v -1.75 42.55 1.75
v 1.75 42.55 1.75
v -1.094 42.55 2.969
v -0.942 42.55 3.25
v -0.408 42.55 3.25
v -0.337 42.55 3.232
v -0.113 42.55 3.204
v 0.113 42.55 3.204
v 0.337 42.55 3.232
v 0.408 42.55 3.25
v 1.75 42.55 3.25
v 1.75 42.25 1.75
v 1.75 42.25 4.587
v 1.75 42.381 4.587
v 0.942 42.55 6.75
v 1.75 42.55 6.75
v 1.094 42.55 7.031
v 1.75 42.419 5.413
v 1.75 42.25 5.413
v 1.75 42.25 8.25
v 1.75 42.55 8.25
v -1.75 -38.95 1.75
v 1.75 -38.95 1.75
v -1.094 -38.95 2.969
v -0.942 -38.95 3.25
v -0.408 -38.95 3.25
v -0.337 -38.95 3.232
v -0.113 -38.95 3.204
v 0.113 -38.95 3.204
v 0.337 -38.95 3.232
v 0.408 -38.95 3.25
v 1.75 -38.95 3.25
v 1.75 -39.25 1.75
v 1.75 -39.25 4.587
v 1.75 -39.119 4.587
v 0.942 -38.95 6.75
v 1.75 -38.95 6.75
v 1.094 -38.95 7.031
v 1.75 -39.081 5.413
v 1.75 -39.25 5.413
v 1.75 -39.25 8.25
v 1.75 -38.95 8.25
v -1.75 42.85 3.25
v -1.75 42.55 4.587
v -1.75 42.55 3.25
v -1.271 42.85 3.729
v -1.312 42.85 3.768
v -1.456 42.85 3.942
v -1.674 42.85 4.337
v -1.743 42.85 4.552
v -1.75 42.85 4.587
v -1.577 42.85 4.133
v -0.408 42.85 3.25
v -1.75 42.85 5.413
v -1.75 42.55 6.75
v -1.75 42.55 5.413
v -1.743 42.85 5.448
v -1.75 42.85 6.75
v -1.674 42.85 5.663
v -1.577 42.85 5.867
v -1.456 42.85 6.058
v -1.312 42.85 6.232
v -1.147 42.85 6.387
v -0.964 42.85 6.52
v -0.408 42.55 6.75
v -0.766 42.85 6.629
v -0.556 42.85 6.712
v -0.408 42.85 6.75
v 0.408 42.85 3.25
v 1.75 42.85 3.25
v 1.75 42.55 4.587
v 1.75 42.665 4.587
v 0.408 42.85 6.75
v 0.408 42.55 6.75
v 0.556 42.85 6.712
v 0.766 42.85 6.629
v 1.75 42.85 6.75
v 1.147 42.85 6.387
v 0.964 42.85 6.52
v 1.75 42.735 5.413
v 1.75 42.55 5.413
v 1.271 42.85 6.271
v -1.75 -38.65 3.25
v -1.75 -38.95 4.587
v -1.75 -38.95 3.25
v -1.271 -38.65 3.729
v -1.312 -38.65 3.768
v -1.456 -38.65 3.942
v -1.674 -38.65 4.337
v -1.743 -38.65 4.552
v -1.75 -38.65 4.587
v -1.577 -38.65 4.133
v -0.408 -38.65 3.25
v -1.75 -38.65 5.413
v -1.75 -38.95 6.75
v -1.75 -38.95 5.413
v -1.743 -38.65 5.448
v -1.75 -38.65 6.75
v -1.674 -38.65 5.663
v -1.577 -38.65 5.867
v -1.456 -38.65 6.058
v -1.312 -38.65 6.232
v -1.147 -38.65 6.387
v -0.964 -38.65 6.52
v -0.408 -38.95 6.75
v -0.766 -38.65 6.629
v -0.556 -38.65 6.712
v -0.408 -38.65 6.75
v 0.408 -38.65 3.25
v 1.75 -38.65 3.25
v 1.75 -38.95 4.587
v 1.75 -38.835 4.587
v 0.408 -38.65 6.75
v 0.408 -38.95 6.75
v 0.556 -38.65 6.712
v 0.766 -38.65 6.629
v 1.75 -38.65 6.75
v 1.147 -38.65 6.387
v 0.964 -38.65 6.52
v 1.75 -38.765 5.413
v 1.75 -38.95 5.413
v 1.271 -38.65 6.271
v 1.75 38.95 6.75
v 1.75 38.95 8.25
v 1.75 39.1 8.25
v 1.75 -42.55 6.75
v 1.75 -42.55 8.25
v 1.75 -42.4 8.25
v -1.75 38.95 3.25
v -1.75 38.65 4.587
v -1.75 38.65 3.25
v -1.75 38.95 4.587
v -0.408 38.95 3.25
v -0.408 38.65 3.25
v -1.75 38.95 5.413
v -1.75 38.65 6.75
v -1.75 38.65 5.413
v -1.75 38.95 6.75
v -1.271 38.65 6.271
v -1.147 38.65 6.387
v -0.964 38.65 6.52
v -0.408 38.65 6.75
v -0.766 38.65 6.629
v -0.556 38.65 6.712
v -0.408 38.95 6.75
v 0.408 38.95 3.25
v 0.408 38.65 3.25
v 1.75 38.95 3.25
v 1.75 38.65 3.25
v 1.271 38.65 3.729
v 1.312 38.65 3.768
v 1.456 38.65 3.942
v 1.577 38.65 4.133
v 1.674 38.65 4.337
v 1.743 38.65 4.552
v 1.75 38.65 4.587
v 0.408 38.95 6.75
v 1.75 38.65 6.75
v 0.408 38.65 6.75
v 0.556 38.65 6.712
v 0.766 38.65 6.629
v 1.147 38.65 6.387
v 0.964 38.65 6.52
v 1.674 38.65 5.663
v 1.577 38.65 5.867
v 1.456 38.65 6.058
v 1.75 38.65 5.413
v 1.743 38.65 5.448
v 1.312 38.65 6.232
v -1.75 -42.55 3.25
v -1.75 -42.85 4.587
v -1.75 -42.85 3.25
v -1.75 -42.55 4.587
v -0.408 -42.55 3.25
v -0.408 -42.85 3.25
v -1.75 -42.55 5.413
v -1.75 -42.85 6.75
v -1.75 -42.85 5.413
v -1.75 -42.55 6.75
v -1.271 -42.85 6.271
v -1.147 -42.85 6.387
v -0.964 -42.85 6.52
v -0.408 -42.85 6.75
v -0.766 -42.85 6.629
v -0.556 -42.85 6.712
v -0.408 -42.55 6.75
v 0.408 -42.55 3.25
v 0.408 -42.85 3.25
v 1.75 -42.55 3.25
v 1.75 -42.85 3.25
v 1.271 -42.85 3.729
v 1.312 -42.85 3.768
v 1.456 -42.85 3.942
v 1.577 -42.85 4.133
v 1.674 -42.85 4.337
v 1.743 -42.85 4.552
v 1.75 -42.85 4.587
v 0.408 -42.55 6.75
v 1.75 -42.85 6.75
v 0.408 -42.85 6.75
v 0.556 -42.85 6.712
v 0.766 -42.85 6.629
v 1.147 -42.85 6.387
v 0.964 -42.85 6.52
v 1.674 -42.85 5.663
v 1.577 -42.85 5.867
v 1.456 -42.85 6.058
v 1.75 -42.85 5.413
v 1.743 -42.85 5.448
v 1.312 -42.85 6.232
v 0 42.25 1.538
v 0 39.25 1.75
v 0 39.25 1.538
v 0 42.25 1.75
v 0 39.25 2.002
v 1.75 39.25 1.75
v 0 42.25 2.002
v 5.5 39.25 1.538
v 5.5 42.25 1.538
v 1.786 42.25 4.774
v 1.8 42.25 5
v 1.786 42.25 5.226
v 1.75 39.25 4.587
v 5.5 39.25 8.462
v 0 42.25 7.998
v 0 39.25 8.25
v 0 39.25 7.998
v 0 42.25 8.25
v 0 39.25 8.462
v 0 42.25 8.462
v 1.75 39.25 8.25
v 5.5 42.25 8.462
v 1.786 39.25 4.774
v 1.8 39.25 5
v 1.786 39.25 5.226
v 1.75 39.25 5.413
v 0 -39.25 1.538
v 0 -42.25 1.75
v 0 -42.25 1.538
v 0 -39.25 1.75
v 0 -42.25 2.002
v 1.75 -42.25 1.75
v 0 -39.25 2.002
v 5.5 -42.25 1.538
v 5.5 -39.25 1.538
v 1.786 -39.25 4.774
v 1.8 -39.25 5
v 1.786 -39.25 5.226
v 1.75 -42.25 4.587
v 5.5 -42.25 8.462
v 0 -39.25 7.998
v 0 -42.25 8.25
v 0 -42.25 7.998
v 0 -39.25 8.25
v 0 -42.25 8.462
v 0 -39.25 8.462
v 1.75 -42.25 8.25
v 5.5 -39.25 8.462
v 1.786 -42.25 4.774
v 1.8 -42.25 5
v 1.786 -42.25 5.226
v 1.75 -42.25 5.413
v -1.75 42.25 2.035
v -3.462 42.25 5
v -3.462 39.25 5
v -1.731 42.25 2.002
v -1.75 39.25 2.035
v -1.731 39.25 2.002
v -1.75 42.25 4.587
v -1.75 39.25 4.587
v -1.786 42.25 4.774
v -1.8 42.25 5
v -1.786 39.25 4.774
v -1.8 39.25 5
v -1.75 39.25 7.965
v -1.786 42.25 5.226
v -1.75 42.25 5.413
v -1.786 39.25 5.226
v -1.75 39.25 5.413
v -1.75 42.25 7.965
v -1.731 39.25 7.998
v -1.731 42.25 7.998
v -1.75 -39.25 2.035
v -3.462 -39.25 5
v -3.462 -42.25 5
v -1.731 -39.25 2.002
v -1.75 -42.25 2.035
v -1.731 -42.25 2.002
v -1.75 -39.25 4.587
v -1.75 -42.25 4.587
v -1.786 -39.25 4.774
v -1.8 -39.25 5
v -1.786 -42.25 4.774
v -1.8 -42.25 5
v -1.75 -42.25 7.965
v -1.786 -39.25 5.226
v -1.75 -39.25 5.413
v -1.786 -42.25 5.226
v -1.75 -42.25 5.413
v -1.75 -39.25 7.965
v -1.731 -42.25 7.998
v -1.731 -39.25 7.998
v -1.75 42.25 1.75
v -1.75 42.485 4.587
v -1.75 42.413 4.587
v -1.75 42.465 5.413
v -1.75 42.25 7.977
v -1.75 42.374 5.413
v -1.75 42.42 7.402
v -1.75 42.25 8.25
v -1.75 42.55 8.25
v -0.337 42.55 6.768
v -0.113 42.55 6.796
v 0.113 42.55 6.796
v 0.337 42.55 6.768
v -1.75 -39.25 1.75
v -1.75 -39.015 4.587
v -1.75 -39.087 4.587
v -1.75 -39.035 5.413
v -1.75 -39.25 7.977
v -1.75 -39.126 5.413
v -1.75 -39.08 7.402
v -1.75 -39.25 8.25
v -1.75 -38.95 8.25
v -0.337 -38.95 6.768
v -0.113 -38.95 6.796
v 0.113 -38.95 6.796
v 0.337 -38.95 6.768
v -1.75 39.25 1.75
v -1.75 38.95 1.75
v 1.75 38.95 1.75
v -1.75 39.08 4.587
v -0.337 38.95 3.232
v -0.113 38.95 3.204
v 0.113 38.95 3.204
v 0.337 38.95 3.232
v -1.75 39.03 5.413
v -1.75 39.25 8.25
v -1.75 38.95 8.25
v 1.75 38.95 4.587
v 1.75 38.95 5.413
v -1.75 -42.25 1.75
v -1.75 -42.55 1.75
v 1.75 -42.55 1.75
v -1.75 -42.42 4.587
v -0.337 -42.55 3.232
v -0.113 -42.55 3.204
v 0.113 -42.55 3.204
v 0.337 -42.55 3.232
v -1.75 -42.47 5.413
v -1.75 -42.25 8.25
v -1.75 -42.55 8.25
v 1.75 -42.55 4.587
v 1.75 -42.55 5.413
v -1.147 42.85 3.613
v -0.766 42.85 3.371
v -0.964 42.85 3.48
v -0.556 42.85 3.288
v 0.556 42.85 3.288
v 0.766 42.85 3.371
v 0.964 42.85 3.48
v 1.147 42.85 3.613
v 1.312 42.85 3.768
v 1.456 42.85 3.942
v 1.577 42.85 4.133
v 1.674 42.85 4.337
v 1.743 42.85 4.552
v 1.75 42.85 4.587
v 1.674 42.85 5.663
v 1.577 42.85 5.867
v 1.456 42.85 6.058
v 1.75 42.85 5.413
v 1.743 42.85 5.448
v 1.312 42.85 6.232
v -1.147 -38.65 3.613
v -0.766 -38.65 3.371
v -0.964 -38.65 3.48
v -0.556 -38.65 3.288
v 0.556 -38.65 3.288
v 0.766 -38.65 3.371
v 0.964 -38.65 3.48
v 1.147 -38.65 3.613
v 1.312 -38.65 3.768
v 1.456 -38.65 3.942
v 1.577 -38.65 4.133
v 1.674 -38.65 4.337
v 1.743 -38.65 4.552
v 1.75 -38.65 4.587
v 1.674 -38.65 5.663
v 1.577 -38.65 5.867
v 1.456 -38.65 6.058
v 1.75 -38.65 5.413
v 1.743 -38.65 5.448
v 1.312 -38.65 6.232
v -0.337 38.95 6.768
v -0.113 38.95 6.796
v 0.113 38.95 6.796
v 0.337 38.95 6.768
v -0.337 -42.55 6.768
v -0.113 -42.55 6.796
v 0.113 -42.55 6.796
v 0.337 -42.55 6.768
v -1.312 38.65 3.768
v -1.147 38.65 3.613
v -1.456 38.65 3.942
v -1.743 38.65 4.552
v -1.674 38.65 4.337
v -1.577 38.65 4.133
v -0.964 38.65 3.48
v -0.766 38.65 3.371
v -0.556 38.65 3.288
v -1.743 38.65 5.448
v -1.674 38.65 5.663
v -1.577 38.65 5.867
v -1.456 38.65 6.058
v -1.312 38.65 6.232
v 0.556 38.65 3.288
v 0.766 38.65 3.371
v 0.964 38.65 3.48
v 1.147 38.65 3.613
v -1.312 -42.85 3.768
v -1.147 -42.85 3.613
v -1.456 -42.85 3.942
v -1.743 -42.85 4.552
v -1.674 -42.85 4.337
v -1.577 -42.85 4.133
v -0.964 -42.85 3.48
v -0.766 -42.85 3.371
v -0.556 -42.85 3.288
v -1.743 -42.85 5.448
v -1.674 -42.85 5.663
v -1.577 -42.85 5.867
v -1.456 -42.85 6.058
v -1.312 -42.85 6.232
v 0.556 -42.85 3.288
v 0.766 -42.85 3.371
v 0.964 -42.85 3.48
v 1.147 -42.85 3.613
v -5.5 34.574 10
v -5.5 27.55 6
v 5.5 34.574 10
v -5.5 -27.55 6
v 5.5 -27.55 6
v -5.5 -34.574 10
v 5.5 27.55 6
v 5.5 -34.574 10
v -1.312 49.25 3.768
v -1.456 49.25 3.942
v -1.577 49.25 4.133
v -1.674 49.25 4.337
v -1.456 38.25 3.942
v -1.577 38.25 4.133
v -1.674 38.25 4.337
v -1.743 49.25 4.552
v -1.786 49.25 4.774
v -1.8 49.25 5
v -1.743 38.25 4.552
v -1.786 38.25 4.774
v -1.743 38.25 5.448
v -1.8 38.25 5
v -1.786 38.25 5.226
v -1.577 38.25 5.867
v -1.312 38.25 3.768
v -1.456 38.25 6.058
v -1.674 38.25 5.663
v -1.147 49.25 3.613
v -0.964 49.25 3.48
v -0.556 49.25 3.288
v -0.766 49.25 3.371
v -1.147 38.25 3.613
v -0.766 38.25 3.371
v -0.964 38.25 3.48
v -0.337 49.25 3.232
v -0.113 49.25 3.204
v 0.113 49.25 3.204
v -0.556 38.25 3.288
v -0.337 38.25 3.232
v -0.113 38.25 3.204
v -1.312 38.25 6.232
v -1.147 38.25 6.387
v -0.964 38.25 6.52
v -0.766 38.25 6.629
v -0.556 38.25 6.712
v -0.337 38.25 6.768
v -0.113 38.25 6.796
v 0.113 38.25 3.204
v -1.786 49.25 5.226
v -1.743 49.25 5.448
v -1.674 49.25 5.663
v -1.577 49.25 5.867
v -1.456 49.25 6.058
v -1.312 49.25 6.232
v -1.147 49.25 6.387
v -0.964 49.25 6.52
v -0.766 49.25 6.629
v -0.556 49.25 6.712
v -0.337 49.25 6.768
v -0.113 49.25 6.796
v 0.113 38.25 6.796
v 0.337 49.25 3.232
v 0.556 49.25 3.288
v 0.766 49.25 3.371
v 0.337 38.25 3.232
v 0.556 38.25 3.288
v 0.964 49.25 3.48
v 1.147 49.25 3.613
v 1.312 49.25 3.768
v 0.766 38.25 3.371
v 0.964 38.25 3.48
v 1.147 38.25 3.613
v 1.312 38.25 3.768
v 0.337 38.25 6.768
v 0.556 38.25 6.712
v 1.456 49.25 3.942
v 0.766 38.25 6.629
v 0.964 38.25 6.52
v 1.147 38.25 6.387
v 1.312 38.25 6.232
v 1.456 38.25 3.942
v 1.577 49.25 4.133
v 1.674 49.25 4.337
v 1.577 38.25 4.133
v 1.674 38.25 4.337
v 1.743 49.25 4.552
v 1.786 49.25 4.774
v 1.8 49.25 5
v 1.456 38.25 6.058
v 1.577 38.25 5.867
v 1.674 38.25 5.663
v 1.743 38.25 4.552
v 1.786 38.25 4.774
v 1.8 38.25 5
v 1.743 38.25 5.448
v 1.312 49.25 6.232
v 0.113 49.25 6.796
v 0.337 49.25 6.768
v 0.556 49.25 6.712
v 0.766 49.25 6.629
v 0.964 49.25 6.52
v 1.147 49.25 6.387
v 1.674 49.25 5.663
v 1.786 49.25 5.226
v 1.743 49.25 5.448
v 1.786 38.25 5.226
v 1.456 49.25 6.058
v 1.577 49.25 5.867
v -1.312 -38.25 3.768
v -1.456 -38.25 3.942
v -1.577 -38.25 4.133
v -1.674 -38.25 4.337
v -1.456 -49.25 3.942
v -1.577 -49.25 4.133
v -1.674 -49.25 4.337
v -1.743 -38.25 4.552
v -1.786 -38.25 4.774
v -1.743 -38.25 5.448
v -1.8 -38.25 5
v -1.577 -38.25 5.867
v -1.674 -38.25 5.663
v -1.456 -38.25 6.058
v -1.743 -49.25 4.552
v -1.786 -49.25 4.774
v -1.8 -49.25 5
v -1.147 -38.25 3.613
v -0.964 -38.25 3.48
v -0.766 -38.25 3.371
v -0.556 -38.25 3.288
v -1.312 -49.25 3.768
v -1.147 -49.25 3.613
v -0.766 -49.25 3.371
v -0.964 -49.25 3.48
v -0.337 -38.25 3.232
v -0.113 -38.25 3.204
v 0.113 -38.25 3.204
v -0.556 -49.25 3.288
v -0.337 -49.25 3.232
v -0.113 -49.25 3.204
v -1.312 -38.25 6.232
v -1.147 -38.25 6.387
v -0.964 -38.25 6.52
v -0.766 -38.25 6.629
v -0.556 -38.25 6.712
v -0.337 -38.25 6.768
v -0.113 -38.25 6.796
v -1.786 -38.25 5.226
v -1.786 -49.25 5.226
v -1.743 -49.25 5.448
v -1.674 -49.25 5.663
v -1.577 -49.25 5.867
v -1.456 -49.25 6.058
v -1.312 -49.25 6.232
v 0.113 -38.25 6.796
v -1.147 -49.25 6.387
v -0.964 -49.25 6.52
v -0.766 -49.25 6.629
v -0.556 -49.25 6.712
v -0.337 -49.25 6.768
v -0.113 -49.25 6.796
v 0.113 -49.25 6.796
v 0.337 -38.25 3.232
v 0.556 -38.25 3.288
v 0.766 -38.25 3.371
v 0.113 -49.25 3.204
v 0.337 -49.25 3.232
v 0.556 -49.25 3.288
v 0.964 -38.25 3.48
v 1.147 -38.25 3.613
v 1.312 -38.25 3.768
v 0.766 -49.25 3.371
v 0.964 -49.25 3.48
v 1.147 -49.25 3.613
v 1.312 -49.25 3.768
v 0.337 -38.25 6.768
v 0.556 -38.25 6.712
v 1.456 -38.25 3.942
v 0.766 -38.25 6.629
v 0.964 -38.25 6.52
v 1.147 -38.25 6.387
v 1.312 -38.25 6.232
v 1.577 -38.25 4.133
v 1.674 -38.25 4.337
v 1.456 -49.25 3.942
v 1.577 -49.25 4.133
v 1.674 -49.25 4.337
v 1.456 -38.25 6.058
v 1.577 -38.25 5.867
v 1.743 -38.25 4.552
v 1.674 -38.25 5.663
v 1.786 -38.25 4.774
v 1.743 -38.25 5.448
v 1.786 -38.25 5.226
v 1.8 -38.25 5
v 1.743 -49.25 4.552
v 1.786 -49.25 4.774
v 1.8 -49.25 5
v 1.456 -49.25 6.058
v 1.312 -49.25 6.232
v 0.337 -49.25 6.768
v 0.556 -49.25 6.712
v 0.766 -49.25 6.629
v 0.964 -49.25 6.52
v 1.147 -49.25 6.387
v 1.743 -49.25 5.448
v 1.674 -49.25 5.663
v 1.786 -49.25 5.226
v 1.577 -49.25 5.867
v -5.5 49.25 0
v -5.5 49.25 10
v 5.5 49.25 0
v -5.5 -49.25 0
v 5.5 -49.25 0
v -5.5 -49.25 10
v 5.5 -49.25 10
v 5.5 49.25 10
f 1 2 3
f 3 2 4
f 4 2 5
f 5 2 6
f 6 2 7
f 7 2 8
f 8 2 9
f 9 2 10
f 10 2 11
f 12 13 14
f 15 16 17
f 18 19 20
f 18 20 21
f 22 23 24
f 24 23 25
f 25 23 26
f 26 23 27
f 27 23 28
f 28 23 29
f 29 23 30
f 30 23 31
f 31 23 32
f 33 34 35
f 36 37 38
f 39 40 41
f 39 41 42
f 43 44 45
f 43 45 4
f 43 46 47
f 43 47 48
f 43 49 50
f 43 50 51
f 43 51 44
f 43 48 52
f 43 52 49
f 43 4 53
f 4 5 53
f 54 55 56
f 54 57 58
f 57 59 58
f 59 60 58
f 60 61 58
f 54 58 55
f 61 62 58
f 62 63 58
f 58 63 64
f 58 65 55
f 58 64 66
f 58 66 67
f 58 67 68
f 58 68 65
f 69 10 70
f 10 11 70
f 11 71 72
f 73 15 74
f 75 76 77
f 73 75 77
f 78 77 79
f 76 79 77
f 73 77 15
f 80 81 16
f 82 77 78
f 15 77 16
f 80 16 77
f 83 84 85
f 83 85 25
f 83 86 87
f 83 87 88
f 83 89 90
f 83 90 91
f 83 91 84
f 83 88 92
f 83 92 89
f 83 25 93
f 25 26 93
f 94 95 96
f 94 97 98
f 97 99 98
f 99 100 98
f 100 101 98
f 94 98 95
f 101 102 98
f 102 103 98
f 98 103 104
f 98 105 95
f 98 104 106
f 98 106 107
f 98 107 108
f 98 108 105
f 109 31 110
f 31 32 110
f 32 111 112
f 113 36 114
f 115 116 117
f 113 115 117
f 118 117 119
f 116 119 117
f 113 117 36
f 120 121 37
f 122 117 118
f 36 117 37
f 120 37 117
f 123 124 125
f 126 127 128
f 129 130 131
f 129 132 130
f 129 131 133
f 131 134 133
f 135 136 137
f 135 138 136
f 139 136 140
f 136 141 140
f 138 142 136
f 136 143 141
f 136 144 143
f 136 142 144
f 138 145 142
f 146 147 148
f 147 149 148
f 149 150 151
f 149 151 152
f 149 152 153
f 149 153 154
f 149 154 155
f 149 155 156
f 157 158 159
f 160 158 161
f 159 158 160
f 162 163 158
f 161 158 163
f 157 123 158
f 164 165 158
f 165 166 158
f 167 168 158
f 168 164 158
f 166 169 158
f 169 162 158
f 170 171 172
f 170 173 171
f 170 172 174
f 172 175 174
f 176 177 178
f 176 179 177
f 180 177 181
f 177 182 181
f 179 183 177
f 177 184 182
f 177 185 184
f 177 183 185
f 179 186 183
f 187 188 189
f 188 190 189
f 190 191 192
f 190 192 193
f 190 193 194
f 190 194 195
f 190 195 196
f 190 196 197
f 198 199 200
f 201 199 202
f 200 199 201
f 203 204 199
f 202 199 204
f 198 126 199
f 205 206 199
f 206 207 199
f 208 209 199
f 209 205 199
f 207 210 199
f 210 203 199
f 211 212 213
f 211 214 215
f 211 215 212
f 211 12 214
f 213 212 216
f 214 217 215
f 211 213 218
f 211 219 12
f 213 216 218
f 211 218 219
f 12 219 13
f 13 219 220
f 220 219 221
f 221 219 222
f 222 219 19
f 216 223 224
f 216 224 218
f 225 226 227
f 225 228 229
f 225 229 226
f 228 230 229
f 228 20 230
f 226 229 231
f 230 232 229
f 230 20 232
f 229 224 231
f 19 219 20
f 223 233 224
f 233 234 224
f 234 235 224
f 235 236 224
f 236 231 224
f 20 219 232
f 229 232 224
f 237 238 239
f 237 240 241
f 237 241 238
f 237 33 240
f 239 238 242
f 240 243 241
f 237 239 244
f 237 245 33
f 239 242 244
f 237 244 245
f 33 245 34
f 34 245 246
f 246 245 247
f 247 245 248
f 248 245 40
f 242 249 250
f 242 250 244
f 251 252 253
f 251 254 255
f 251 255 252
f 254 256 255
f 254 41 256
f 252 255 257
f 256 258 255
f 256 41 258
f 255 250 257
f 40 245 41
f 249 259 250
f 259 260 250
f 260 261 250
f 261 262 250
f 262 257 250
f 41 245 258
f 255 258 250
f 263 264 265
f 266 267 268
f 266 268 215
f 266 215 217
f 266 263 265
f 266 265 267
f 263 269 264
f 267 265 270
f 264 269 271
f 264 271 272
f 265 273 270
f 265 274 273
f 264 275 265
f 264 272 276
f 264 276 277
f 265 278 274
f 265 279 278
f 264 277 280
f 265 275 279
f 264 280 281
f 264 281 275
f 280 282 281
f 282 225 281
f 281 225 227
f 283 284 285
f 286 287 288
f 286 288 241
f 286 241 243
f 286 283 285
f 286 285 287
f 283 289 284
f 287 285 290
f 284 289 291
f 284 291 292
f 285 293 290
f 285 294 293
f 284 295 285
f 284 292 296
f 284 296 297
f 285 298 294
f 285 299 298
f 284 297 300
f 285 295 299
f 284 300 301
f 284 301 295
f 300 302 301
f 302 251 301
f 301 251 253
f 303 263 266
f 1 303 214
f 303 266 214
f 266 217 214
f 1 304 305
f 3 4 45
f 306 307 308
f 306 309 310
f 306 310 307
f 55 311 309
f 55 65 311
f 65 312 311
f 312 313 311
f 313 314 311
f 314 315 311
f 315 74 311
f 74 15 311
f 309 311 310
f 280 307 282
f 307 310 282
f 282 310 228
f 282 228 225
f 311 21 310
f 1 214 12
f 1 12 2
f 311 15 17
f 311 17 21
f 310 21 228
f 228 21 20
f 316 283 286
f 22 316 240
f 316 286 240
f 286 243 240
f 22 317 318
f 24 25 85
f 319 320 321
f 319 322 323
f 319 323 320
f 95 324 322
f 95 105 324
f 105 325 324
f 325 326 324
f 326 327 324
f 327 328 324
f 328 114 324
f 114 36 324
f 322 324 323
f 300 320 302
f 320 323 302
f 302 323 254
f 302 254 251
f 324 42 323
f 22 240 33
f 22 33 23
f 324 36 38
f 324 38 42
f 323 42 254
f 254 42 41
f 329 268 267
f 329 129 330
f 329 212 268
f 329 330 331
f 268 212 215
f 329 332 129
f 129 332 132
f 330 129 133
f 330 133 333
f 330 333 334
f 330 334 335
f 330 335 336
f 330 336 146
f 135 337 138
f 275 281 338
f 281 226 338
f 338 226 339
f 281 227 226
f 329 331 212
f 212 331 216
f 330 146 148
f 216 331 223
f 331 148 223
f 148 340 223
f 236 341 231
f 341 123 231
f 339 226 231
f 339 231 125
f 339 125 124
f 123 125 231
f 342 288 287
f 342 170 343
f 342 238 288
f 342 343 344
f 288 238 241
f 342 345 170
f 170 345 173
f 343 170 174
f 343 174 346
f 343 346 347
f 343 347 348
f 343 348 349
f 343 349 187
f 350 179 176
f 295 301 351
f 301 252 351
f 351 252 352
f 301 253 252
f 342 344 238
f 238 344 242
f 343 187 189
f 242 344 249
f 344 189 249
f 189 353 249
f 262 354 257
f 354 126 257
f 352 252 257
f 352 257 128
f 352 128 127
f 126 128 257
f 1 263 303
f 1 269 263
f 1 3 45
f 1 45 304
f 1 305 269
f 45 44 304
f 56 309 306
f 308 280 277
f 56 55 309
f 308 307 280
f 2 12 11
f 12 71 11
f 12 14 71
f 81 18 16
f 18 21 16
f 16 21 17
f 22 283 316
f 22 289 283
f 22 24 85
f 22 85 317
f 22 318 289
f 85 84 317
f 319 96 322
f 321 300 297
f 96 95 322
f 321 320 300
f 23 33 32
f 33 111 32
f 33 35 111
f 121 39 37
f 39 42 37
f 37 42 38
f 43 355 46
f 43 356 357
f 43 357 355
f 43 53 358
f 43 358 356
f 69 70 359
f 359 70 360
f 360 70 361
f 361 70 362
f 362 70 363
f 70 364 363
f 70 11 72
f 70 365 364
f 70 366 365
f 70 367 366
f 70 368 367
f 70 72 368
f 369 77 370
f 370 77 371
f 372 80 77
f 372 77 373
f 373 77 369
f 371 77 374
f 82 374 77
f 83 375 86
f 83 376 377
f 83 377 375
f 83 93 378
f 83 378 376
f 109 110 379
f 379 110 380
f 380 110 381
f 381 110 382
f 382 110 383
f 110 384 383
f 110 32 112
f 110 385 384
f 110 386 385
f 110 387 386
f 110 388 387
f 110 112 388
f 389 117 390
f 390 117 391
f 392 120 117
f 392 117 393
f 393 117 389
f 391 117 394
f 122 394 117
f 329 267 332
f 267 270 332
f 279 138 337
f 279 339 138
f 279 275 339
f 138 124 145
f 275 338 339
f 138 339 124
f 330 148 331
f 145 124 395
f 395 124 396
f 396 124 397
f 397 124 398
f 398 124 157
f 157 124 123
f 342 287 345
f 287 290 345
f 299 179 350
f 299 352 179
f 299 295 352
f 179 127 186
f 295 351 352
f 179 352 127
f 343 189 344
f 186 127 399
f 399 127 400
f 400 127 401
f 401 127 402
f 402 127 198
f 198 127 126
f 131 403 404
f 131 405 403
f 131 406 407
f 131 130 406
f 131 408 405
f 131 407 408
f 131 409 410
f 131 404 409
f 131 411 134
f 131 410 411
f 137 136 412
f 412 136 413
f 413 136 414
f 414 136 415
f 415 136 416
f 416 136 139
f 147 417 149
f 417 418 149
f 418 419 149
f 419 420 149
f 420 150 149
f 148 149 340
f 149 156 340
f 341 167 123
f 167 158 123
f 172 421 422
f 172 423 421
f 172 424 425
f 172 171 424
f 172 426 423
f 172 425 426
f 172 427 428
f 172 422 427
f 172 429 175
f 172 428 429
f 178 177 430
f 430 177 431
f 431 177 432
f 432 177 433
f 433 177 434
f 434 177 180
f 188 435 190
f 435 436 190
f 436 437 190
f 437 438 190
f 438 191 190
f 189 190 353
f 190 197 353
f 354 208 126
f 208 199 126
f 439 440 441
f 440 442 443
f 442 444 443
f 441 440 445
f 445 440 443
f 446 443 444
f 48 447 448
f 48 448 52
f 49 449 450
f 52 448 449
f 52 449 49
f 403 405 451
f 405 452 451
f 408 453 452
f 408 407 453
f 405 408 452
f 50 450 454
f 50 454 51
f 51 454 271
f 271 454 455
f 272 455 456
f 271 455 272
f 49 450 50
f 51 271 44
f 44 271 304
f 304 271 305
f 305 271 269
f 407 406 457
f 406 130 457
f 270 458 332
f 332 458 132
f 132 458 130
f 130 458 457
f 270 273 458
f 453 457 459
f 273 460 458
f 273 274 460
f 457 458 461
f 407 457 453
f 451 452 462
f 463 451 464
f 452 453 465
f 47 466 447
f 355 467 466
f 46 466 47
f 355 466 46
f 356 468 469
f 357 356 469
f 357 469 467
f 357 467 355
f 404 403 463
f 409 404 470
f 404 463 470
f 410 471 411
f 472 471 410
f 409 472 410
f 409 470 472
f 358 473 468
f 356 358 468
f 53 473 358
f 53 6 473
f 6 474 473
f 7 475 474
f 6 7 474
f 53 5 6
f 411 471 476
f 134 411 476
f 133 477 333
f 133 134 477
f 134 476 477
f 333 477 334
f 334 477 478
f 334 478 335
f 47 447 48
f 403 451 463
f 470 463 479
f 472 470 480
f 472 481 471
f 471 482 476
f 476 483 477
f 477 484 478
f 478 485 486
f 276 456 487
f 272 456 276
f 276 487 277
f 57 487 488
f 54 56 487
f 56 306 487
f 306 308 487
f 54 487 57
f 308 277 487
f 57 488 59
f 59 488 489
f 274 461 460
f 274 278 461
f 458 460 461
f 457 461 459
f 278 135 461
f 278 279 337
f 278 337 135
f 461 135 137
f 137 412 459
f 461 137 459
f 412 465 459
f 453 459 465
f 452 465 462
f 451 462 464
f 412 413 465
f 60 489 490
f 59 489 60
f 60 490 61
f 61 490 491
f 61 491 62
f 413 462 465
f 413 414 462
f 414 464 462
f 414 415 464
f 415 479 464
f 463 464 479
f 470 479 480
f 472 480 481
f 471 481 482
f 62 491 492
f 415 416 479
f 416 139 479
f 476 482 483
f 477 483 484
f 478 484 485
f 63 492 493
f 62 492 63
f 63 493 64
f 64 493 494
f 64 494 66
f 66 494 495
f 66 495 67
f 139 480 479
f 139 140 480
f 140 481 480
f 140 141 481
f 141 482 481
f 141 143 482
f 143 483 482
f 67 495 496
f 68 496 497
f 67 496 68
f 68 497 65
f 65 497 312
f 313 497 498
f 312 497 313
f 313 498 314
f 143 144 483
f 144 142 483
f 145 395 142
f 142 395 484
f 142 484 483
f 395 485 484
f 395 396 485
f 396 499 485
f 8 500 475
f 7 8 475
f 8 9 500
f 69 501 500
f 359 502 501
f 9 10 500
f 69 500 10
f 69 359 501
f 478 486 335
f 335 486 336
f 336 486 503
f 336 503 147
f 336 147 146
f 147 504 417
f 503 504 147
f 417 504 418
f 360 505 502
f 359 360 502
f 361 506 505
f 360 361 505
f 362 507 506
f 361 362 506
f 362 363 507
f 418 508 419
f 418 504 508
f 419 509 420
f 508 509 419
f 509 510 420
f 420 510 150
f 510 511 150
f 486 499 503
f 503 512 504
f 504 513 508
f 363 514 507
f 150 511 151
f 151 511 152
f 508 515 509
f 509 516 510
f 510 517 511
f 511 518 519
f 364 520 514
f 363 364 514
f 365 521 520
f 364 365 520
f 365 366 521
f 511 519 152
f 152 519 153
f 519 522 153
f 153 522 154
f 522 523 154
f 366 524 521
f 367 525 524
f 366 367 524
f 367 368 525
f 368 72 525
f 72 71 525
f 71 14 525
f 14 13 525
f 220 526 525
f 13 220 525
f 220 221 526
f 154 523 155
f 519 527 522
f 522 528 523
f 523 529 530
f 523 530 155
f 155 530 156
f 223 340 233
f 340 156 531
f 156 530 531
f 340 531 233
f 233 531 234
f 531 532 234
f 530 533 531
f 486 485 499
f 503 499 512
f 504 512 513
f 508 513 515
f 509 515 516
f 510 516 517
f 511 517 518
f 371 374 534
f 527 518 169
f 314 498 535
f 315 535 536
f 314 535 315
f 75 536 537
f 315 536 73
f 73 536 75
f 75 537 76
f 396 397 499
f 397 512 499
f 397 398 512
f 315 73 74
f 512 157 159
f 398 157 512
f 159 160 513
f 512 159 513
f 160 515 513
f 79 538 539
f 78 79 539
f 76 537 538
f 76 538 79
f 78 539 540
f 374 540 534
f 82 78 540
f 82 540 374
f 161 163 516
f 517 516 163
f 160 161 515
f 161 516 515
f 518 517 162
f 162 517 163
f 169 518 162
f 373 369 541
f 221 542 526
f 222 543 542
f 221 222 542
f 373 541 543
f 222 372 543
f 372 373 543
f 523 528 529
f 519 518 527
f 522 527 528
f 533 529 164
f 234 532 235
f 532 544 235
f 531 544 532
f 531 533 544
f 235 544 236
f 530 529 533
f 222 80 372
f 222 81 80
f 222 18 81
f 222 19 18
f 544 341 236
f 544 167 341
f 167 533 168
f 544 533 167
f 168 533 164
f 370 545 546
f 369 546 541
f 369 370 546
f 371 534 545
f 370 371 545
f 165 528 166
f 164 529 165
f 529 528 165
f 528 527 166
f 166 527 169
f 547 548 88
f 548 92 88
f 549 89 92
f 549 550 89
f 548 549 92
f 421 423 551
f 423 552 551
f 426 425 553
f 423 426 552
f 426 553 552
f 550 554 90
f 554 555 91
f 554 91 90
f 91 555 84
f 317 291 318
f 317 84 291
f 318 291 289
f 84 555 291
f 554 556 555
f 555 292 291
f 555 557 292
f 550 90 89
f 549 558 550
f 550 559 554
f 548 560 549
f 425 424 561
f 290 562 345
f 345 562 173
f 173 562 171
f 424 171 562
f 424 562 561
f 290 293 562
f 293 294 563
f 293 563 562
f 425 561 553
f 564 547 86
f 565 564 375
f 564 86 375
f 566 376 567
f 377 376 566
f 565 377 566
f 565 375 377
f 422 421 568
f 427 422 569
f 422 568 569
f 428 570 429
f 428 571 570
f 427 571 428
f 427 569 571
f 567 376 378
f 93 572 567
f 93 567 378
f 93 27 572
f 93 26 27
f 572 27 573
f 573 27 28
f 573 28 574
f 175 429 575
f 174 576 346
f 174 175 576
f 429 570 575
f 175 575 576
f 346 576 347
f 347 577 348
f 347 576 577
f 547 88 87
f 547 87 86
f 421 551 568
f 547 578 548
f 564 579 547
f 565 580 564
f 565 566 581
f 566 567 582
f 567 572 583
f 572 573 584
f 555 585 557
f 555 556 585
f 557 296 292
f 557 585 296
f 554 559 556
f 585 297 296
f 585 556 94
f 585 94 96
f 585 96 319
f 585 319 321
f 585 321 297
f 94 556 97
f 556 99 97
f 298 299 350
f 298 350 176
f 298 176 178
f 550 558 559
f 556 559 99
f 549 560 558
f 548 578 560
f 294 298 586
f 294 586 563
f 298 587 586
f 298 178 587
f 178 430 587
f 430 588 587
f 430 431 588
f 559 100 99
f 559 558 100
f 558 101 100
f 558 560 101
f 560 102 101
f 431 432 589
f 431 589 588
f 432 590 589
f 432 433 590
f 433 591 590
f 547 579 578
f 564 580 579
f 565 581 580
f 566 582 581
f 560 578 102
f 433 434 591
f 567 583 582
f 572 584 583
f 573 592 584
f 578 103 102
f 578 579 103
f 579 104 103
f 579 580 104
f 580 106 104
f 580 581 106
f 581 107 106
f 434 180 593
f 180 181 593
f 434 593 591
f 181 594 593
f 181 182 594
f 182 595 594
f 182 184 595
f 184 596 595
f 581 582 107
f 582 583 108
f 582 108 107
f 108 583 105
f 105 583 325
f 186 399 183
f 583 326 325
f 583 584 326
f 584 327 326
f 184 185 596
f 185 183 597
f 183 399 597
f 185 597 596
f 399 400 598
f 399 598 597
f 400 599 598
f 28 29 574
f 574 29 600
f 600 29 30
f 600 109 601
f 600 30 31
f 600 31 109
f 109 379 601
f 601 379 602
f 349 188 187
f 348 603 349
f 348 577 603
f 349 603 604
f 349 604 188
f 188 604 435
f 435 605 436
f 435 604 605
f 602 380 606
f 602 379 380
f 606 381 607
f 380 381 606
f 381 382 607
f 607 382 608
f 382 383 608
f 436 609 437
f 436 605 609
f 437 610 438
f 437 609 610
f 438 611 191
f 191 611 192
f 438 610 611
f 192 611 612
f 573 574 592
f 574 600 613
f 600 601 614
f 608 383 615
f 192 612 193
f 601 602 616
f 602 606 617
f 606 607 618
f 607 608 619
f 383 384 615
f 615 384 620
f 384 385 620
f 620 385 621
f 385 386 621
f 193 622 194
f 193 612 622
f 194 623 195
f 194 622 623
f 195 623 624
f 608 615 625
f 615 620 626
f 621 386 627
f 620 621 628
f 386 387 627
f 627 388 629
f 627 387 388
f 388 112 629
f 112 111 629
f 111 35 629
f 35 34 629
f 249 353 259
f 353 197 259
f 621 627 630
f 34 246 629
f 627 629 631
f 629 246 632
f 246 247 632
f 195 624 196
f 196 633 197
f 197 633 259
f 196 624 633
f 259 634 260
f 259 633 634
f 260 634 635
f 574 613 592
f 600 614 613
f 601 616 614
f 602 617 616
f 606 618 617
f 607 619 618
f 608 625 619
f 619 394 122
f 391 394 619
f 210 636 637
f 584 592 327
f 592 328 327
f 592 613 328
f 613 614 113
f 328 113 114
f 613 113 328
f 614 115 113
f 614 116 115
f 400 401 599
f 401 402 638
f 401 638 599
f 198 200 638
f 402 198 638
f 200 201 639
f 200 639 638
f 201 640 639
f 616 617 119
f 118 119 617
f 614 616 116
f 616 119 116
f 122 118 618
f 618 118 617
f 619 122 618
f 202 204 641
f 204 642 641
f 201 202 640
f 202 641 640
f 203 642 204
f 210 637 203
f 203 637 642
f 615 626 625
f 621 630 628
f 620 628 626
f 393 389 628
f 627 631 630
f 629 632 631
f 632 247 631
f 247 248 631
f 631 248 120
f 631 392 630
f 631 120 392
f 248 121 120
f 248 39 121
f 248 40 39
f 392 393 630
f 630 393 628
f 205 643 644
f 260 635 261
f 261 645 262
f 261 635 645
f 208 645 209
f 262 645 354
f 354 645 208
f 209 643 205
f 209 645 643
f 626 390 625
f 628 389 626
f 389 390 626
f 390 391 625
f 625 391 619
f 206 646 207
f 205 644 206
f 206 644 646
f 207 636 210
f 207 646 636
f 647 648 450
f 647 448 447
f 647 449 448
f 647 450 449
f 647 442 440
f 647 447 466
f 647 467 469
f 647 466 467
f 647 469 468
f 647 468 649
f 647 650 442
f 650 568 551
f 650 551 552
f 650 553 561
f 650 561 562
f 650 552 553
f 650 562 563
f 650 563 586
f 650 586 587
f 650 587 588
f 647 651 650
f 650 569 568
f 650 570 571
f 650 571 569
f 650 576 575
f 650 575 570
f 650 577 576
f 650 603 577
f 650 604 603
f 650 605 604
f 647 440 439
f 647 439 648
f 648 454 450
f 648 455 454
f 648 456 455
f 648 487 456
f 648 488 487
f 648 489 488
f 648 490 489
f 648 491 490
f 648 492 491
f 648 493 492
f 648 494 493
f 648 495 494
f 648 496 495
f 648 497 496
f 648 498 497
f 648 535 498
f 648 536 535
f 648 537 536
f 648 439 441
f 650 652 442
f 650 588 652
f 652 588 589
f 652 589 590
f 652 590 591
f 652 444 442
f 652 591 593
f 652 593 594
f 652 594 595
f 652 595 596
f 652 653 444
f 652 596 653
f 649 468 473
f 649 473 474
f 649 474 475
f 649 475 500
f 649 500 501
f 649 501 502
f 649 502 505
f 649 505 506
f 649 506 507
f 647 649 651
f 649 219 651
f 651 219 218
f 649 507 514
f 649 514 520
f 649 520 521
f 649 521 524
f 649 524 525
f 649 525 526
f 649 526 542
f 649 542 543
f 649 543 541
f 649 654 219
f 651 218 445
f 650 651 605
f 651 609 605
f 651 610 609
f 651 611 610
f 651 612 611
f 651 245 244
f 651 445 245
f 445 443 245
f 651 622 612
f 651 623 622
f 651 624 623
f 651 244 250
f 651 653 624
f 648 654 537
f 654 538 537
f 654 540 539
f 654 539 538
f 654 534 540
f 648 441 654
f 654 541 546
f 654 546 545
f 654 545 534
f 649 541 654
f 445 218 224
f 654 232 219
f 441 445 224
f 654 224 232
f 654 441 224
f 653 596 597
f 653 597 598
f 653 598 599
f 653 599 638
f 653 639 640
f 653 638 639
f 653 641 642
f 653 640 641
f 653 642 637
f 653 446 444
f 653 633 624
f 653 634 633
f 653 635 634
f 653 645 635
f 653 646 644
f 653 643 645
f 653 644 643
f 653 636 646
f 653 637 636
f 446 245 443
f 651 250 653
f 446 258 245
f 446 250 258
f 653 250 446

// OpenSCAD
$fn = 50;

difference() {
	union() {
		translate(v = [0, 49.25, 0]) {
			rotate(a = [90, 0, 0]) {
				difference() {
					union() {
						translate(v = [-5.5, 0, 0]) {
							cube(size = [11.0, 10.0, 98.5]);
						}
					}
					union() {
						translate(v = [0, 5.0, 7.0]) {
							rotate(a = [0, 0, 0]) {
								difference() {
									union() {
										translate(v = [-1.75, -3.25, -0.3]) {
											cube(size = [3.5, 6.5, 0.3]);
										}
										translate(v = [-1.75, -1.75, -0.6]) {
											cube(size = [3.5, 3.5, 0.3]);
										}
										translate(v = [-1.75, -3.25, 3]) {
											cube(size = [3.5, 6.5, 0.3]);
										}
										translate(v = [-1.75, -1.75, 3.3]) {
											cube(size = [3.5, 3.5, 0.3]);
										}
										translate(v = [0.0, -3.4619999999999997, 0]) {
											cube(size = [20, 6.9239999999999995, 3]);
										}
										linear_extrude(height = 3) {
											polygon(points = [[3.4619999999999997, 0.0], [1.7310000000000003, 2.9981799479017264], [-1.7309999999999992, 2.9981799479017264], [-3.4619999999999997, 4.2397272186481365e-16], [-1.7310000000000014, -2.998179947901726], [1.7309999999999977, -2.9981799479017277]]);
										}
										translate(v = [-1.75, -3.25, -0.3]) {
											cube(size = [3.5, 6.5, 0.3]);
										}
										translate(v = [-1.75, -1.75, -0.6]) {
											cube(size = [3.5, 3.5, 0.3]);
										}
										translate(v = [-1.75, -3.25, 3]) {
											cube(size = [3.5, 6.5, 0.3]);
										}
										translate(v = [-1.75, -1.75, 3.3]) {
											cube(size = [3.5, 3.5, 0.3]);
										}
										translate(v = [-1.75, -3.25, -0.3]) {
											cube(size = [3.5, 6.5, 0.3]);
										}
										translate(v = [-1.75, -1.75, -0.6]) {
											cube(size = [3.5, 3.5, 0.3]);
										}
										translate(v = [-1.75, -3.25, 3]) {
											cube(size = [3.5, 6.5, 0.3]);
										}
										translate(v = [-1.75, -1.75, 3.3]) {
											cube(size = [3.5, 3.5, 0.3]);
										}
									}
									union();
								}
							}
						}
						translate(v = [0, 5.0, 88.5]) {
							rotate(a = [0, 0, 0]) {
								difference() {
									union() {
										translate(v = [-1.75, -3.25, -0.3]) {
											cube(size = [3.5, 6.5, 0.3]);
										}
										translate(v = [-1.75, -1.75, -0.6]) {
											cube(size = [3.5, 3.5, 0.3]);
										}
										translate(v = [-1.75, -3.25, 3]) {
											cube(size = [3.5, 6.5, 0.3]);
										}
										translate(v = [-1.75, -1.75, 3.3]) {
											cube(size = [3.5, 3.5, 0.3]);
										}
										translate(v = [0.0, -3.4619999999999997, 0]) {
											cube(size = [20, 6.9239999999999995, 3]);
										}
										linear_extrude(height = 3) {
											polygon(points = [[3.4619999999999997, 0.0], [1.7310000000000003, 2.9981799479017264], [-1.7309999999999992, 2.9981799479017264], [-3.4619999999999997, 4.2397272186481365e-16], [-1.7310000000000014, -2.998179947901726], [1.7309999999999977, -2.9981799479017277]]);
										}
										translate(v = [-1.75, -3.25, -0.3]) {
											cube(size = [3.5, 6.5, 0.3]);
										}
										translate(v = [-1.75, -1.75, -0.6]) {
											cube(size = [3.5, 3.5, 0.3]);
										}
										translate(v = [-1.75, -3.25, 3]) {
											cube(size = [3.5, 6.5, 0.3]);
										}
										translate(v = [-1.75, -1.75, 3.3]) {
											cube(size = [3.5, 3.5, 0.3]);
										}
										translate(v = [-1.75, -3.25, -0.3]) {
											cube(size = [3.5, 6.5, 0.3]);
										}
										translate(v = [-1.75, -1.75, -0.6]) {
											cube(size = [3.5, 3.5, 0.3]);
										}
										translate(v = [-1.75, -3.25, 3]) {
											cube(size = [3.5, 6.5, 0.3]);
										}
										translate(v = [-1.75, -1.75, 3.3]) {
											cube(size = [3.5, 3.5, 0.3]);
										}
									}
									union();
								}
							}
						}
						translate(v = [-5.6, 0, 0]) {
							rotate(a = [90, 0, 90]) {
								linear_extrude(height = 11.2) {
									polygon(points = [[10.1, 14.5], [10.1, 84.0], [6.0, 76.8], [6.0, 21.7]]);
								}
							}
						}
						translate(v = [0, 5.0, -0.1]) {
							cylinder(h = 11.1, r = 1.8);
						}
						translate(v = [0, 5.0, 87.5]) {
							cylinder(h = 11.1, r = 1.8);
						}
					}
				}
			}
		}
	}
	union();
}
